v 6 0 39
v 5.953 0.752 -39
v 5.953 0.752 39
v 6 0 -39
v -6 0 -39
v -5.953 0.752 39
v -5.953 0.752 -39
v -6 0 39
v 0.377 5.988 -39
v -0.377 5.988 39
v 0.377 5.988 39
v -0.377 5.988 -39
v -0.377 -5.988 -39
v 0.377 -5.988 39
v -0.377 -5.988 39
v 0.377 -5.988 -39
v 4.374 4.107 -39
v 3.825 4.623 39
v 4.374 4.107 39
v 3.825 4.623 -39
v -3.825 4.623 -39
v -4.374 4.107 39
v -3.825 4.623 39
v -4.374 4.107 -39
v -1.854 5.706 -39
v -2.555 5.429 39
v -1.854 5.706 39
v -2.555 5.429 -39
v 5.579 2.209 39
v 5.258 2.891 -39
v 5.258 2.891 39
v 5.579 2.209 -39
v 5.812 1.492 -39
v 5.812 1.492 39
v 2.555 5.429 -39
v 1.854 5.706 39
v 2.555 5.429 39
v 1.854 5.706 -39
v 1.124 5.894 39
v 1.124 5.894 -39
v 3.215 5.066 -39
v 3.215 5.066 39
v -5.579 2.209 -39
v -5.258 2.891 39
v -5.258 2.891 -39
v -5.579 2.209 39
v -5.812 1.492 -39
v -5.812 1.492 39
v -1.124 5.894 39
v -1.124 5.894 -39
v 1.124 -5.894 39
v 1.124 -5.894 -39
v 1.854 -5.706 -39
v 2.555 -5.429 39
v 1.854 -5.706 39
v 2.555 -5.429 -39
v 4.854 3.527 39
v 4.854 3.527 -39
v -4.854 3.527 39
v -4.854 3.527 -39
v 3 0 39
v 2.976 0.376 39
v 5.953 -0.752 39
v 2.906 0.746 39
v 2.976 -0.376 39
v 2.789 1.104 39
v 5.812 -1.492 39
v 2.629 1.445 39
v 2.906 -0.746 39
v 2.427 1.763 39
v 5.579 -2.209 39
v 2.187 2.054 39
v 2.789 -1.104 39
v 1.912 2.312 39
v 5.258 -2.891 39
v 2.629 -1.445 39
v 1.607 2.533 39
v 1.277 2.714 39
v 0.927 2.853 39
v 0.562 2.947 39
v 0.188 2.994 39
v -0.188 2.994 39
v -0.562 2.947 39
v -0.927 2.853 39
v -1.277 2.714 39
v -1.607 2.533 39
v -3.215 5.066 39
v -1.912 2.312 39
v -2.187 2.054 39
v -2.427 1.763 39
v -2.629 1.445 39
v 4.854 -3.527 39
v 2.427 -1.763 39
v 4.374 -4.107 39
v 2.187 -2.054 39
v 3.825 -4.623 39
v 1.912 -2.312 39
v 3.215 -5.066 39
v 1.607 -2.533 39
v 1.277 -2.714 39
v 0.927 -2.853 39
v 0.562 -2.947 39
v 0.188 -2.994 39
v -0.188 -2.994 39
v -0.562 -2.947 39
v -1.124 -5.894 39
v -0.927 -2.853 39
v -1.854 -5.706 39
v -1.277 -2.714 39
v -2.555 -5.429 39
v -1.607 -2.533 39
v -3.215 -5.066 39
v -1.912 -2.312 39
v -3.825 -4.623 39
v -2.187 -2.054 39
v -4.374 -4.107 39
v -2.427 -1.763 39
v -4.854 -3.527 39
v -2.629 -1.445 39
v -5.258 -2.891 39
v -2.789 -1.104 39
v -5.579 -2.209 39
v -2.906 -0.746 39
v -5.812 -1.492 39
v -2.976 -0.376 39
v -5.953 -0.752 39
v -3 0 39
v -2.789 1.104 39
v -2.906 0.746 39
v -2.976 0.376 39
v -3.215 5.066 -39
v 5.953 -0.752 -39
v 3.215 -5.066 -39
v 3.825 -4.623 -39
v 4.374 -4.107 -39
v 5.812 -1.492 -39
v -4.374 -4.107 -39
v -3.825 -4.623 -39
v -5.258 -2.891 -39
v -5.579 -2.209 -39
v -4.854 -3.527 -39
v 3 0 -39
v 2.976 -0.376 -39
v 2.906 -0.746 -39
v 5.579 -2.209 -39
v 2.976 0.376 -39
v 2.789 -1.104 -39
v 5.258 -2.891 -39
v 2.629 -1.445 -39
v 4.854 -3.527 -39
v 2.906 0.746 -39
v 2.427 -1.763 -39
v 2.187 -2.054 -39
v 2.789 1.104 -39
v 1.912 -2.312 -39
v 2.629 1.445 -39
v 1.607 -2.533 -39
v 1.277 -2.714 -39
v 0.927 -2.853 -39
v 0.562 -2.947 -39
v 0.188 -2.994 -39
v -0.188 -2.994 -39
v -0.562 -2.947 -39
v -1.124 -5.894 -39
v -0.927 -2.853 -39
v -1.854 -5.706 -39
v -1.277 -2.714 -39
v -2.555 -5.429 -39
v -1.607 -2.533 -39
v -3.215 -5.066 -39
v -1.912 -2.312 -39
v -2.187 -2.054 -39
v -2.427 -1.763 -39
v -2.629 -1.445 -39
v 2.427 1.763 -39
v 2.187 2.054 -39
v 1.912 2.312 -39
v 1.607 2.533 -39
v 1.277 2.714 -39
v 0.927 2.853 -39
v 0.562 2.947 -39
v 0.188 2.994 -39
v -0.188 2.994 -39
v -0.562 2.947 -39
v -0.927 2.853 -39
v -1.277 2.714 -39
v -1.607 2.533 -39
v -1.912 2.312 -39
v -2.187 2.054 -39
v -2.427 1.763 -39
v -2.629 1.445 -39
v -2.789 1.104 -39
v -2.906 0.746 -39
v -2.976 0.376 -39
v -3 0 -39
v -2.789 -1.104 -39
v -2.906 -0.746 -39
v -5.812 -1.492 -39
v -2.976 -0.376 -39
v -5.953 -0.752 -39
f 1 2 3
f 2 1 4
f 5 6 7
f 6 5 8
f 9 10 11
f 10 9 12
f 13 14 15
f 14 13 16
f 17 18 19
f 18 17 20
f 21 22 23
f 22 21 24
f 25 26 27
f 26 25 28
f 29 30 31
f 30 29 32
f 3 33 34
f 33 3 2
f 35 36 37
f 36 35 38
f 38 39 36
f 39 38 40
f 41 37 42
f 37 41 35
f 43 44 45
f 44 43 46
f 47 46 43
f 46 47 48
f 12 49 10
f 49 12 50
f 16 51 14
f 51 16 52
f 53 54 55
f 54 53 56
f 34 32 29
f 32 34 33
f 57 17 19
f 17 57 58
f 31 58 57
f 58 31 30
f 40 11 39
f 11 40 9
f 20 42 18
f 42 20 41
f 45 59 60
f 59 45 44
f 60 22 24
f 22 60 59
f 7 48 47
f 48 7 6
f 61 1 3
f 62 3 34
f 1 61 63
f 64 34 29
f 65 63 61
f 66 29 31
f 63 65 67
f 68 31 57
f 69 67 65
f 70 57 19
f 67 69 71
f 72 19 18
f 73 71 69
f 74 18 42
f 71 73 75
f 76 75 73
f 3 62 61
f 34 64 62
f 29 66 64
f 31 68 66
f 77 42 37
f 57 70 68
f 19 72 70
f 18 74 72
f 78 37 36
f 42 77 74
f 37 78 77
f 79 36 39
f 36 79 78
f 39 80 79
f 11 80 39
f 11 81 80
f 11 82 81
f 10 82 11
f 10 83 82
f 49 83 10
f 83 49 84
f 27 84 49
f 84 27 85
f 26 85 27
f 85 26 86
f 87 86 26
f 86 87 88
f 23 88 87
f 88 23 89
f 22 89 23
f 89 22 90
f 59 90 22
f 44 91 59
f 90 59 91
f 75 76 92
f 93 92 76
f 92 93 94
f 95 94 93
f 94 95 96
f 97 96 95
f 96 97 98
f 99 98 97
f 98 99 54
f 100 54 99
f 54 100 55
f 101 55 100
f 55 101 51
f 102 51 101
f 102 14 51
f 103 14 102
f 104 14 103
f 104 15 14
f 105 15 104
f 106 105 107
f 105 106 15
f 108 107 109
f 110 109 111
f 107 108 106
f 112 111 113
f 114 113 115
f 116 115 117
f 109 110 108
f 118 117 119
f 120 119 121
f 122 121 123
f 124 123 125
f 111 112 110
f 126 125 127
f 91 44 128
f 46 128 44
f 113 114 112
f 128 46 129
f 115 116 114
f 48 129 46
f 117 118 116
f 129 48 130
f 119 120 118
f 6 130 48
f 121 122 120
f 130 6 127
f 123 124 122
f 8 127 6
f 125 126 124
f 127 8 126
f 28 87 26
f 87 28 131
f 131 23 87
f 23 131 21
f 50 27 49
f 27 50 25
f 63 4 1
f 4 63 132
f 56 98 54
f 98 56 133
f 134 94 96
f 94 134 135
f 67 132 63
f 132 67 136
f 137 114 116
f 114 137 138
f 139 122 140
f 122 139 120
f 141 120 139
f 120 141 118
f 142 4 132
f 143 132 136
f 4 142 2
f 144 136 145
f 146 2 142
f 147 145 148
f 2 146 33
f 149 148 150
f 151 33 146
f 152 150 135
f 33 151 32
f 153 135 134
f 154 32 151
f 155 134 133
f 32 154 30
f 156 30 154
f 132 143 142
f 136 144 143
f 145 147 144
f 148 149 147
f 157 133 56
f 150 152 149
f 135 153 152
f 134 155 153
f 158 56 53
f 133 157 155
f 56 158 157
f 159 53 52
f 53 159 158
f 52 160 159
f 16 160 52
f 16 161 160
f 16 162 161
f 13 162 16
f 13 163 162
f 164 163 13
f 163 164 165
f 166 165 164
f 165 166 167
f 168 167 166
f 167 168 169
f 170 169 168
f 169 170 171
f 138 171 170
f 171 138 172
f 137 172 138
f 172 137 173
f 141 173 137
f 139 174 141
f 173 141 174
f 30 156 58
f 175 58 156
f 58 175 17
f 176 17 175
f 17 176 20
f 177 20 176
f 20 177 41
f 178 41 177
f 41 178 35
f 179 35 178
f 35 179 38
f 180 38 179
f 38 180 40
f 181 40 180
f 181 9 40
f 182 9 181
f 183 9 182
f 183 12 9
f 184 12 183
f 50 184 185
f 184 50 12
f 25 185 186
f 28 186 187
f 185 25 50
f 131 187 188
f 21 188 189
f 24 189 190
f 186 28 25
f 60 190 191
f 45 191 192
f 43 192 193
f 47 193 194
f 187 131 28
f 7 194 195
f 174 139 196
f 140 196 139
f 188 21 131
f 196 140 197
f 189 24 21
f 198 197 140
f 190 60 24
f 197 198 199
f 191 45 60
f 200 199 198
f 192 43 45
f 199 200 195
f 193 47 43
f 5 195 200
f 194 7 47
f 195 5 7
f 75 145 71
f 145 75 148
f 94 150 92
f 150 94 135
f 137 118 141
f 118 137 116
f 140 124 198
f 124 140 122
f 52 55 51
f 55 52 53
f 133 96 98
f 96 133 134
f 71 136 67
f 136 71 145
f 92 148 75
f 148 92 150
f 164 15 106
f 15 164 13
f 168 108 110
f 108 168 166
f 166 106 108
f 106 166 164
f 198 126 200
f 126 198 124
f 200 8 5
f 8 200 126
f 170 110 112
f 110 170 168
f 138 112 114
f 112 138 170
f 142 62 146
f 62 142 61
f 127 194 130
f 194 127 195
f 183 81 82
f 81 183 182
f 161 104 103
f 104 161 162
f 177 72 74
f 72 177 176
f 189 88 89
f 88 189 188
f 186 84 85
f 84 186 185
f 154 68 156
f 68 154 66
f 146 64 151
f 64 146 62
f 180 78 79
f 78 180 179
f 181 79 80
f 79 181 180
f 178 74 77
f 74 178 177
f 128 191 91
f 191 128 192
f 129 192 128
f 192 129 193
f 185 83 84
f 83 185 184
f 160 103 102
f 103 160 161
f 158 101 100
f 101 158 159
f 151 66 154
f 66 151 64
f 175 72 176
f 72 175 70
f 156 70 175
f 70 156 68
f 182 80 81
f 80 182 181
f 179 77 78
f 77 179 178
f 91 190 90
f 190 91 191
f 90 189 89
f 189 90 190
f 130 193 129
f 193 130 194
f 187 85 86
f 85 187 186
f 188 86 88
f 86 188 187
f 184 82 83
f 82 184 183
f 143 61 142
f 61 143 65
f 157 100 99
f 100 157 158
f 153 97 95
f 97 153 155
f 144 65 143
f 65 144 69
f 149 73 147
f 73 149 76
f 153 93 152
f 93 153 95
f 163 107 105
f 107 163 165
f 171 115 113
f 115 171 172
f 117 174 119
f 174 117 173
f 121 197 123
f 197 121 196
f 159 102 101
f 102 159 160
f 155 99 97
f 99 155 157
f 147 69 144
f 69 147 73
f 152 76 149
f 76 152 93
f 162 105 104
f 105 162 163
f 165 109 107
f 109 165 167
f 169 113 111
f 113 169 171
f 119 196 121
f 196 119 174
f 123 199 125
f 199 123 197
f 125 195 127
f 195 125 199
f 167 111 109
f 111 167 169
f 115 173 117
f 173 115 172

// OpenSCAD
$fn = 50;


difference() {
	union() {
		translate(v = [0, 0, -39.0000000000]) {
			cylinder(h = 78, r = 6.0000000000);
		}
	}
	union() {
		translate(v = [0, 0, -100.0000000000]) {
			cylinder(h = 200, r = 3);
		}
	}
}
